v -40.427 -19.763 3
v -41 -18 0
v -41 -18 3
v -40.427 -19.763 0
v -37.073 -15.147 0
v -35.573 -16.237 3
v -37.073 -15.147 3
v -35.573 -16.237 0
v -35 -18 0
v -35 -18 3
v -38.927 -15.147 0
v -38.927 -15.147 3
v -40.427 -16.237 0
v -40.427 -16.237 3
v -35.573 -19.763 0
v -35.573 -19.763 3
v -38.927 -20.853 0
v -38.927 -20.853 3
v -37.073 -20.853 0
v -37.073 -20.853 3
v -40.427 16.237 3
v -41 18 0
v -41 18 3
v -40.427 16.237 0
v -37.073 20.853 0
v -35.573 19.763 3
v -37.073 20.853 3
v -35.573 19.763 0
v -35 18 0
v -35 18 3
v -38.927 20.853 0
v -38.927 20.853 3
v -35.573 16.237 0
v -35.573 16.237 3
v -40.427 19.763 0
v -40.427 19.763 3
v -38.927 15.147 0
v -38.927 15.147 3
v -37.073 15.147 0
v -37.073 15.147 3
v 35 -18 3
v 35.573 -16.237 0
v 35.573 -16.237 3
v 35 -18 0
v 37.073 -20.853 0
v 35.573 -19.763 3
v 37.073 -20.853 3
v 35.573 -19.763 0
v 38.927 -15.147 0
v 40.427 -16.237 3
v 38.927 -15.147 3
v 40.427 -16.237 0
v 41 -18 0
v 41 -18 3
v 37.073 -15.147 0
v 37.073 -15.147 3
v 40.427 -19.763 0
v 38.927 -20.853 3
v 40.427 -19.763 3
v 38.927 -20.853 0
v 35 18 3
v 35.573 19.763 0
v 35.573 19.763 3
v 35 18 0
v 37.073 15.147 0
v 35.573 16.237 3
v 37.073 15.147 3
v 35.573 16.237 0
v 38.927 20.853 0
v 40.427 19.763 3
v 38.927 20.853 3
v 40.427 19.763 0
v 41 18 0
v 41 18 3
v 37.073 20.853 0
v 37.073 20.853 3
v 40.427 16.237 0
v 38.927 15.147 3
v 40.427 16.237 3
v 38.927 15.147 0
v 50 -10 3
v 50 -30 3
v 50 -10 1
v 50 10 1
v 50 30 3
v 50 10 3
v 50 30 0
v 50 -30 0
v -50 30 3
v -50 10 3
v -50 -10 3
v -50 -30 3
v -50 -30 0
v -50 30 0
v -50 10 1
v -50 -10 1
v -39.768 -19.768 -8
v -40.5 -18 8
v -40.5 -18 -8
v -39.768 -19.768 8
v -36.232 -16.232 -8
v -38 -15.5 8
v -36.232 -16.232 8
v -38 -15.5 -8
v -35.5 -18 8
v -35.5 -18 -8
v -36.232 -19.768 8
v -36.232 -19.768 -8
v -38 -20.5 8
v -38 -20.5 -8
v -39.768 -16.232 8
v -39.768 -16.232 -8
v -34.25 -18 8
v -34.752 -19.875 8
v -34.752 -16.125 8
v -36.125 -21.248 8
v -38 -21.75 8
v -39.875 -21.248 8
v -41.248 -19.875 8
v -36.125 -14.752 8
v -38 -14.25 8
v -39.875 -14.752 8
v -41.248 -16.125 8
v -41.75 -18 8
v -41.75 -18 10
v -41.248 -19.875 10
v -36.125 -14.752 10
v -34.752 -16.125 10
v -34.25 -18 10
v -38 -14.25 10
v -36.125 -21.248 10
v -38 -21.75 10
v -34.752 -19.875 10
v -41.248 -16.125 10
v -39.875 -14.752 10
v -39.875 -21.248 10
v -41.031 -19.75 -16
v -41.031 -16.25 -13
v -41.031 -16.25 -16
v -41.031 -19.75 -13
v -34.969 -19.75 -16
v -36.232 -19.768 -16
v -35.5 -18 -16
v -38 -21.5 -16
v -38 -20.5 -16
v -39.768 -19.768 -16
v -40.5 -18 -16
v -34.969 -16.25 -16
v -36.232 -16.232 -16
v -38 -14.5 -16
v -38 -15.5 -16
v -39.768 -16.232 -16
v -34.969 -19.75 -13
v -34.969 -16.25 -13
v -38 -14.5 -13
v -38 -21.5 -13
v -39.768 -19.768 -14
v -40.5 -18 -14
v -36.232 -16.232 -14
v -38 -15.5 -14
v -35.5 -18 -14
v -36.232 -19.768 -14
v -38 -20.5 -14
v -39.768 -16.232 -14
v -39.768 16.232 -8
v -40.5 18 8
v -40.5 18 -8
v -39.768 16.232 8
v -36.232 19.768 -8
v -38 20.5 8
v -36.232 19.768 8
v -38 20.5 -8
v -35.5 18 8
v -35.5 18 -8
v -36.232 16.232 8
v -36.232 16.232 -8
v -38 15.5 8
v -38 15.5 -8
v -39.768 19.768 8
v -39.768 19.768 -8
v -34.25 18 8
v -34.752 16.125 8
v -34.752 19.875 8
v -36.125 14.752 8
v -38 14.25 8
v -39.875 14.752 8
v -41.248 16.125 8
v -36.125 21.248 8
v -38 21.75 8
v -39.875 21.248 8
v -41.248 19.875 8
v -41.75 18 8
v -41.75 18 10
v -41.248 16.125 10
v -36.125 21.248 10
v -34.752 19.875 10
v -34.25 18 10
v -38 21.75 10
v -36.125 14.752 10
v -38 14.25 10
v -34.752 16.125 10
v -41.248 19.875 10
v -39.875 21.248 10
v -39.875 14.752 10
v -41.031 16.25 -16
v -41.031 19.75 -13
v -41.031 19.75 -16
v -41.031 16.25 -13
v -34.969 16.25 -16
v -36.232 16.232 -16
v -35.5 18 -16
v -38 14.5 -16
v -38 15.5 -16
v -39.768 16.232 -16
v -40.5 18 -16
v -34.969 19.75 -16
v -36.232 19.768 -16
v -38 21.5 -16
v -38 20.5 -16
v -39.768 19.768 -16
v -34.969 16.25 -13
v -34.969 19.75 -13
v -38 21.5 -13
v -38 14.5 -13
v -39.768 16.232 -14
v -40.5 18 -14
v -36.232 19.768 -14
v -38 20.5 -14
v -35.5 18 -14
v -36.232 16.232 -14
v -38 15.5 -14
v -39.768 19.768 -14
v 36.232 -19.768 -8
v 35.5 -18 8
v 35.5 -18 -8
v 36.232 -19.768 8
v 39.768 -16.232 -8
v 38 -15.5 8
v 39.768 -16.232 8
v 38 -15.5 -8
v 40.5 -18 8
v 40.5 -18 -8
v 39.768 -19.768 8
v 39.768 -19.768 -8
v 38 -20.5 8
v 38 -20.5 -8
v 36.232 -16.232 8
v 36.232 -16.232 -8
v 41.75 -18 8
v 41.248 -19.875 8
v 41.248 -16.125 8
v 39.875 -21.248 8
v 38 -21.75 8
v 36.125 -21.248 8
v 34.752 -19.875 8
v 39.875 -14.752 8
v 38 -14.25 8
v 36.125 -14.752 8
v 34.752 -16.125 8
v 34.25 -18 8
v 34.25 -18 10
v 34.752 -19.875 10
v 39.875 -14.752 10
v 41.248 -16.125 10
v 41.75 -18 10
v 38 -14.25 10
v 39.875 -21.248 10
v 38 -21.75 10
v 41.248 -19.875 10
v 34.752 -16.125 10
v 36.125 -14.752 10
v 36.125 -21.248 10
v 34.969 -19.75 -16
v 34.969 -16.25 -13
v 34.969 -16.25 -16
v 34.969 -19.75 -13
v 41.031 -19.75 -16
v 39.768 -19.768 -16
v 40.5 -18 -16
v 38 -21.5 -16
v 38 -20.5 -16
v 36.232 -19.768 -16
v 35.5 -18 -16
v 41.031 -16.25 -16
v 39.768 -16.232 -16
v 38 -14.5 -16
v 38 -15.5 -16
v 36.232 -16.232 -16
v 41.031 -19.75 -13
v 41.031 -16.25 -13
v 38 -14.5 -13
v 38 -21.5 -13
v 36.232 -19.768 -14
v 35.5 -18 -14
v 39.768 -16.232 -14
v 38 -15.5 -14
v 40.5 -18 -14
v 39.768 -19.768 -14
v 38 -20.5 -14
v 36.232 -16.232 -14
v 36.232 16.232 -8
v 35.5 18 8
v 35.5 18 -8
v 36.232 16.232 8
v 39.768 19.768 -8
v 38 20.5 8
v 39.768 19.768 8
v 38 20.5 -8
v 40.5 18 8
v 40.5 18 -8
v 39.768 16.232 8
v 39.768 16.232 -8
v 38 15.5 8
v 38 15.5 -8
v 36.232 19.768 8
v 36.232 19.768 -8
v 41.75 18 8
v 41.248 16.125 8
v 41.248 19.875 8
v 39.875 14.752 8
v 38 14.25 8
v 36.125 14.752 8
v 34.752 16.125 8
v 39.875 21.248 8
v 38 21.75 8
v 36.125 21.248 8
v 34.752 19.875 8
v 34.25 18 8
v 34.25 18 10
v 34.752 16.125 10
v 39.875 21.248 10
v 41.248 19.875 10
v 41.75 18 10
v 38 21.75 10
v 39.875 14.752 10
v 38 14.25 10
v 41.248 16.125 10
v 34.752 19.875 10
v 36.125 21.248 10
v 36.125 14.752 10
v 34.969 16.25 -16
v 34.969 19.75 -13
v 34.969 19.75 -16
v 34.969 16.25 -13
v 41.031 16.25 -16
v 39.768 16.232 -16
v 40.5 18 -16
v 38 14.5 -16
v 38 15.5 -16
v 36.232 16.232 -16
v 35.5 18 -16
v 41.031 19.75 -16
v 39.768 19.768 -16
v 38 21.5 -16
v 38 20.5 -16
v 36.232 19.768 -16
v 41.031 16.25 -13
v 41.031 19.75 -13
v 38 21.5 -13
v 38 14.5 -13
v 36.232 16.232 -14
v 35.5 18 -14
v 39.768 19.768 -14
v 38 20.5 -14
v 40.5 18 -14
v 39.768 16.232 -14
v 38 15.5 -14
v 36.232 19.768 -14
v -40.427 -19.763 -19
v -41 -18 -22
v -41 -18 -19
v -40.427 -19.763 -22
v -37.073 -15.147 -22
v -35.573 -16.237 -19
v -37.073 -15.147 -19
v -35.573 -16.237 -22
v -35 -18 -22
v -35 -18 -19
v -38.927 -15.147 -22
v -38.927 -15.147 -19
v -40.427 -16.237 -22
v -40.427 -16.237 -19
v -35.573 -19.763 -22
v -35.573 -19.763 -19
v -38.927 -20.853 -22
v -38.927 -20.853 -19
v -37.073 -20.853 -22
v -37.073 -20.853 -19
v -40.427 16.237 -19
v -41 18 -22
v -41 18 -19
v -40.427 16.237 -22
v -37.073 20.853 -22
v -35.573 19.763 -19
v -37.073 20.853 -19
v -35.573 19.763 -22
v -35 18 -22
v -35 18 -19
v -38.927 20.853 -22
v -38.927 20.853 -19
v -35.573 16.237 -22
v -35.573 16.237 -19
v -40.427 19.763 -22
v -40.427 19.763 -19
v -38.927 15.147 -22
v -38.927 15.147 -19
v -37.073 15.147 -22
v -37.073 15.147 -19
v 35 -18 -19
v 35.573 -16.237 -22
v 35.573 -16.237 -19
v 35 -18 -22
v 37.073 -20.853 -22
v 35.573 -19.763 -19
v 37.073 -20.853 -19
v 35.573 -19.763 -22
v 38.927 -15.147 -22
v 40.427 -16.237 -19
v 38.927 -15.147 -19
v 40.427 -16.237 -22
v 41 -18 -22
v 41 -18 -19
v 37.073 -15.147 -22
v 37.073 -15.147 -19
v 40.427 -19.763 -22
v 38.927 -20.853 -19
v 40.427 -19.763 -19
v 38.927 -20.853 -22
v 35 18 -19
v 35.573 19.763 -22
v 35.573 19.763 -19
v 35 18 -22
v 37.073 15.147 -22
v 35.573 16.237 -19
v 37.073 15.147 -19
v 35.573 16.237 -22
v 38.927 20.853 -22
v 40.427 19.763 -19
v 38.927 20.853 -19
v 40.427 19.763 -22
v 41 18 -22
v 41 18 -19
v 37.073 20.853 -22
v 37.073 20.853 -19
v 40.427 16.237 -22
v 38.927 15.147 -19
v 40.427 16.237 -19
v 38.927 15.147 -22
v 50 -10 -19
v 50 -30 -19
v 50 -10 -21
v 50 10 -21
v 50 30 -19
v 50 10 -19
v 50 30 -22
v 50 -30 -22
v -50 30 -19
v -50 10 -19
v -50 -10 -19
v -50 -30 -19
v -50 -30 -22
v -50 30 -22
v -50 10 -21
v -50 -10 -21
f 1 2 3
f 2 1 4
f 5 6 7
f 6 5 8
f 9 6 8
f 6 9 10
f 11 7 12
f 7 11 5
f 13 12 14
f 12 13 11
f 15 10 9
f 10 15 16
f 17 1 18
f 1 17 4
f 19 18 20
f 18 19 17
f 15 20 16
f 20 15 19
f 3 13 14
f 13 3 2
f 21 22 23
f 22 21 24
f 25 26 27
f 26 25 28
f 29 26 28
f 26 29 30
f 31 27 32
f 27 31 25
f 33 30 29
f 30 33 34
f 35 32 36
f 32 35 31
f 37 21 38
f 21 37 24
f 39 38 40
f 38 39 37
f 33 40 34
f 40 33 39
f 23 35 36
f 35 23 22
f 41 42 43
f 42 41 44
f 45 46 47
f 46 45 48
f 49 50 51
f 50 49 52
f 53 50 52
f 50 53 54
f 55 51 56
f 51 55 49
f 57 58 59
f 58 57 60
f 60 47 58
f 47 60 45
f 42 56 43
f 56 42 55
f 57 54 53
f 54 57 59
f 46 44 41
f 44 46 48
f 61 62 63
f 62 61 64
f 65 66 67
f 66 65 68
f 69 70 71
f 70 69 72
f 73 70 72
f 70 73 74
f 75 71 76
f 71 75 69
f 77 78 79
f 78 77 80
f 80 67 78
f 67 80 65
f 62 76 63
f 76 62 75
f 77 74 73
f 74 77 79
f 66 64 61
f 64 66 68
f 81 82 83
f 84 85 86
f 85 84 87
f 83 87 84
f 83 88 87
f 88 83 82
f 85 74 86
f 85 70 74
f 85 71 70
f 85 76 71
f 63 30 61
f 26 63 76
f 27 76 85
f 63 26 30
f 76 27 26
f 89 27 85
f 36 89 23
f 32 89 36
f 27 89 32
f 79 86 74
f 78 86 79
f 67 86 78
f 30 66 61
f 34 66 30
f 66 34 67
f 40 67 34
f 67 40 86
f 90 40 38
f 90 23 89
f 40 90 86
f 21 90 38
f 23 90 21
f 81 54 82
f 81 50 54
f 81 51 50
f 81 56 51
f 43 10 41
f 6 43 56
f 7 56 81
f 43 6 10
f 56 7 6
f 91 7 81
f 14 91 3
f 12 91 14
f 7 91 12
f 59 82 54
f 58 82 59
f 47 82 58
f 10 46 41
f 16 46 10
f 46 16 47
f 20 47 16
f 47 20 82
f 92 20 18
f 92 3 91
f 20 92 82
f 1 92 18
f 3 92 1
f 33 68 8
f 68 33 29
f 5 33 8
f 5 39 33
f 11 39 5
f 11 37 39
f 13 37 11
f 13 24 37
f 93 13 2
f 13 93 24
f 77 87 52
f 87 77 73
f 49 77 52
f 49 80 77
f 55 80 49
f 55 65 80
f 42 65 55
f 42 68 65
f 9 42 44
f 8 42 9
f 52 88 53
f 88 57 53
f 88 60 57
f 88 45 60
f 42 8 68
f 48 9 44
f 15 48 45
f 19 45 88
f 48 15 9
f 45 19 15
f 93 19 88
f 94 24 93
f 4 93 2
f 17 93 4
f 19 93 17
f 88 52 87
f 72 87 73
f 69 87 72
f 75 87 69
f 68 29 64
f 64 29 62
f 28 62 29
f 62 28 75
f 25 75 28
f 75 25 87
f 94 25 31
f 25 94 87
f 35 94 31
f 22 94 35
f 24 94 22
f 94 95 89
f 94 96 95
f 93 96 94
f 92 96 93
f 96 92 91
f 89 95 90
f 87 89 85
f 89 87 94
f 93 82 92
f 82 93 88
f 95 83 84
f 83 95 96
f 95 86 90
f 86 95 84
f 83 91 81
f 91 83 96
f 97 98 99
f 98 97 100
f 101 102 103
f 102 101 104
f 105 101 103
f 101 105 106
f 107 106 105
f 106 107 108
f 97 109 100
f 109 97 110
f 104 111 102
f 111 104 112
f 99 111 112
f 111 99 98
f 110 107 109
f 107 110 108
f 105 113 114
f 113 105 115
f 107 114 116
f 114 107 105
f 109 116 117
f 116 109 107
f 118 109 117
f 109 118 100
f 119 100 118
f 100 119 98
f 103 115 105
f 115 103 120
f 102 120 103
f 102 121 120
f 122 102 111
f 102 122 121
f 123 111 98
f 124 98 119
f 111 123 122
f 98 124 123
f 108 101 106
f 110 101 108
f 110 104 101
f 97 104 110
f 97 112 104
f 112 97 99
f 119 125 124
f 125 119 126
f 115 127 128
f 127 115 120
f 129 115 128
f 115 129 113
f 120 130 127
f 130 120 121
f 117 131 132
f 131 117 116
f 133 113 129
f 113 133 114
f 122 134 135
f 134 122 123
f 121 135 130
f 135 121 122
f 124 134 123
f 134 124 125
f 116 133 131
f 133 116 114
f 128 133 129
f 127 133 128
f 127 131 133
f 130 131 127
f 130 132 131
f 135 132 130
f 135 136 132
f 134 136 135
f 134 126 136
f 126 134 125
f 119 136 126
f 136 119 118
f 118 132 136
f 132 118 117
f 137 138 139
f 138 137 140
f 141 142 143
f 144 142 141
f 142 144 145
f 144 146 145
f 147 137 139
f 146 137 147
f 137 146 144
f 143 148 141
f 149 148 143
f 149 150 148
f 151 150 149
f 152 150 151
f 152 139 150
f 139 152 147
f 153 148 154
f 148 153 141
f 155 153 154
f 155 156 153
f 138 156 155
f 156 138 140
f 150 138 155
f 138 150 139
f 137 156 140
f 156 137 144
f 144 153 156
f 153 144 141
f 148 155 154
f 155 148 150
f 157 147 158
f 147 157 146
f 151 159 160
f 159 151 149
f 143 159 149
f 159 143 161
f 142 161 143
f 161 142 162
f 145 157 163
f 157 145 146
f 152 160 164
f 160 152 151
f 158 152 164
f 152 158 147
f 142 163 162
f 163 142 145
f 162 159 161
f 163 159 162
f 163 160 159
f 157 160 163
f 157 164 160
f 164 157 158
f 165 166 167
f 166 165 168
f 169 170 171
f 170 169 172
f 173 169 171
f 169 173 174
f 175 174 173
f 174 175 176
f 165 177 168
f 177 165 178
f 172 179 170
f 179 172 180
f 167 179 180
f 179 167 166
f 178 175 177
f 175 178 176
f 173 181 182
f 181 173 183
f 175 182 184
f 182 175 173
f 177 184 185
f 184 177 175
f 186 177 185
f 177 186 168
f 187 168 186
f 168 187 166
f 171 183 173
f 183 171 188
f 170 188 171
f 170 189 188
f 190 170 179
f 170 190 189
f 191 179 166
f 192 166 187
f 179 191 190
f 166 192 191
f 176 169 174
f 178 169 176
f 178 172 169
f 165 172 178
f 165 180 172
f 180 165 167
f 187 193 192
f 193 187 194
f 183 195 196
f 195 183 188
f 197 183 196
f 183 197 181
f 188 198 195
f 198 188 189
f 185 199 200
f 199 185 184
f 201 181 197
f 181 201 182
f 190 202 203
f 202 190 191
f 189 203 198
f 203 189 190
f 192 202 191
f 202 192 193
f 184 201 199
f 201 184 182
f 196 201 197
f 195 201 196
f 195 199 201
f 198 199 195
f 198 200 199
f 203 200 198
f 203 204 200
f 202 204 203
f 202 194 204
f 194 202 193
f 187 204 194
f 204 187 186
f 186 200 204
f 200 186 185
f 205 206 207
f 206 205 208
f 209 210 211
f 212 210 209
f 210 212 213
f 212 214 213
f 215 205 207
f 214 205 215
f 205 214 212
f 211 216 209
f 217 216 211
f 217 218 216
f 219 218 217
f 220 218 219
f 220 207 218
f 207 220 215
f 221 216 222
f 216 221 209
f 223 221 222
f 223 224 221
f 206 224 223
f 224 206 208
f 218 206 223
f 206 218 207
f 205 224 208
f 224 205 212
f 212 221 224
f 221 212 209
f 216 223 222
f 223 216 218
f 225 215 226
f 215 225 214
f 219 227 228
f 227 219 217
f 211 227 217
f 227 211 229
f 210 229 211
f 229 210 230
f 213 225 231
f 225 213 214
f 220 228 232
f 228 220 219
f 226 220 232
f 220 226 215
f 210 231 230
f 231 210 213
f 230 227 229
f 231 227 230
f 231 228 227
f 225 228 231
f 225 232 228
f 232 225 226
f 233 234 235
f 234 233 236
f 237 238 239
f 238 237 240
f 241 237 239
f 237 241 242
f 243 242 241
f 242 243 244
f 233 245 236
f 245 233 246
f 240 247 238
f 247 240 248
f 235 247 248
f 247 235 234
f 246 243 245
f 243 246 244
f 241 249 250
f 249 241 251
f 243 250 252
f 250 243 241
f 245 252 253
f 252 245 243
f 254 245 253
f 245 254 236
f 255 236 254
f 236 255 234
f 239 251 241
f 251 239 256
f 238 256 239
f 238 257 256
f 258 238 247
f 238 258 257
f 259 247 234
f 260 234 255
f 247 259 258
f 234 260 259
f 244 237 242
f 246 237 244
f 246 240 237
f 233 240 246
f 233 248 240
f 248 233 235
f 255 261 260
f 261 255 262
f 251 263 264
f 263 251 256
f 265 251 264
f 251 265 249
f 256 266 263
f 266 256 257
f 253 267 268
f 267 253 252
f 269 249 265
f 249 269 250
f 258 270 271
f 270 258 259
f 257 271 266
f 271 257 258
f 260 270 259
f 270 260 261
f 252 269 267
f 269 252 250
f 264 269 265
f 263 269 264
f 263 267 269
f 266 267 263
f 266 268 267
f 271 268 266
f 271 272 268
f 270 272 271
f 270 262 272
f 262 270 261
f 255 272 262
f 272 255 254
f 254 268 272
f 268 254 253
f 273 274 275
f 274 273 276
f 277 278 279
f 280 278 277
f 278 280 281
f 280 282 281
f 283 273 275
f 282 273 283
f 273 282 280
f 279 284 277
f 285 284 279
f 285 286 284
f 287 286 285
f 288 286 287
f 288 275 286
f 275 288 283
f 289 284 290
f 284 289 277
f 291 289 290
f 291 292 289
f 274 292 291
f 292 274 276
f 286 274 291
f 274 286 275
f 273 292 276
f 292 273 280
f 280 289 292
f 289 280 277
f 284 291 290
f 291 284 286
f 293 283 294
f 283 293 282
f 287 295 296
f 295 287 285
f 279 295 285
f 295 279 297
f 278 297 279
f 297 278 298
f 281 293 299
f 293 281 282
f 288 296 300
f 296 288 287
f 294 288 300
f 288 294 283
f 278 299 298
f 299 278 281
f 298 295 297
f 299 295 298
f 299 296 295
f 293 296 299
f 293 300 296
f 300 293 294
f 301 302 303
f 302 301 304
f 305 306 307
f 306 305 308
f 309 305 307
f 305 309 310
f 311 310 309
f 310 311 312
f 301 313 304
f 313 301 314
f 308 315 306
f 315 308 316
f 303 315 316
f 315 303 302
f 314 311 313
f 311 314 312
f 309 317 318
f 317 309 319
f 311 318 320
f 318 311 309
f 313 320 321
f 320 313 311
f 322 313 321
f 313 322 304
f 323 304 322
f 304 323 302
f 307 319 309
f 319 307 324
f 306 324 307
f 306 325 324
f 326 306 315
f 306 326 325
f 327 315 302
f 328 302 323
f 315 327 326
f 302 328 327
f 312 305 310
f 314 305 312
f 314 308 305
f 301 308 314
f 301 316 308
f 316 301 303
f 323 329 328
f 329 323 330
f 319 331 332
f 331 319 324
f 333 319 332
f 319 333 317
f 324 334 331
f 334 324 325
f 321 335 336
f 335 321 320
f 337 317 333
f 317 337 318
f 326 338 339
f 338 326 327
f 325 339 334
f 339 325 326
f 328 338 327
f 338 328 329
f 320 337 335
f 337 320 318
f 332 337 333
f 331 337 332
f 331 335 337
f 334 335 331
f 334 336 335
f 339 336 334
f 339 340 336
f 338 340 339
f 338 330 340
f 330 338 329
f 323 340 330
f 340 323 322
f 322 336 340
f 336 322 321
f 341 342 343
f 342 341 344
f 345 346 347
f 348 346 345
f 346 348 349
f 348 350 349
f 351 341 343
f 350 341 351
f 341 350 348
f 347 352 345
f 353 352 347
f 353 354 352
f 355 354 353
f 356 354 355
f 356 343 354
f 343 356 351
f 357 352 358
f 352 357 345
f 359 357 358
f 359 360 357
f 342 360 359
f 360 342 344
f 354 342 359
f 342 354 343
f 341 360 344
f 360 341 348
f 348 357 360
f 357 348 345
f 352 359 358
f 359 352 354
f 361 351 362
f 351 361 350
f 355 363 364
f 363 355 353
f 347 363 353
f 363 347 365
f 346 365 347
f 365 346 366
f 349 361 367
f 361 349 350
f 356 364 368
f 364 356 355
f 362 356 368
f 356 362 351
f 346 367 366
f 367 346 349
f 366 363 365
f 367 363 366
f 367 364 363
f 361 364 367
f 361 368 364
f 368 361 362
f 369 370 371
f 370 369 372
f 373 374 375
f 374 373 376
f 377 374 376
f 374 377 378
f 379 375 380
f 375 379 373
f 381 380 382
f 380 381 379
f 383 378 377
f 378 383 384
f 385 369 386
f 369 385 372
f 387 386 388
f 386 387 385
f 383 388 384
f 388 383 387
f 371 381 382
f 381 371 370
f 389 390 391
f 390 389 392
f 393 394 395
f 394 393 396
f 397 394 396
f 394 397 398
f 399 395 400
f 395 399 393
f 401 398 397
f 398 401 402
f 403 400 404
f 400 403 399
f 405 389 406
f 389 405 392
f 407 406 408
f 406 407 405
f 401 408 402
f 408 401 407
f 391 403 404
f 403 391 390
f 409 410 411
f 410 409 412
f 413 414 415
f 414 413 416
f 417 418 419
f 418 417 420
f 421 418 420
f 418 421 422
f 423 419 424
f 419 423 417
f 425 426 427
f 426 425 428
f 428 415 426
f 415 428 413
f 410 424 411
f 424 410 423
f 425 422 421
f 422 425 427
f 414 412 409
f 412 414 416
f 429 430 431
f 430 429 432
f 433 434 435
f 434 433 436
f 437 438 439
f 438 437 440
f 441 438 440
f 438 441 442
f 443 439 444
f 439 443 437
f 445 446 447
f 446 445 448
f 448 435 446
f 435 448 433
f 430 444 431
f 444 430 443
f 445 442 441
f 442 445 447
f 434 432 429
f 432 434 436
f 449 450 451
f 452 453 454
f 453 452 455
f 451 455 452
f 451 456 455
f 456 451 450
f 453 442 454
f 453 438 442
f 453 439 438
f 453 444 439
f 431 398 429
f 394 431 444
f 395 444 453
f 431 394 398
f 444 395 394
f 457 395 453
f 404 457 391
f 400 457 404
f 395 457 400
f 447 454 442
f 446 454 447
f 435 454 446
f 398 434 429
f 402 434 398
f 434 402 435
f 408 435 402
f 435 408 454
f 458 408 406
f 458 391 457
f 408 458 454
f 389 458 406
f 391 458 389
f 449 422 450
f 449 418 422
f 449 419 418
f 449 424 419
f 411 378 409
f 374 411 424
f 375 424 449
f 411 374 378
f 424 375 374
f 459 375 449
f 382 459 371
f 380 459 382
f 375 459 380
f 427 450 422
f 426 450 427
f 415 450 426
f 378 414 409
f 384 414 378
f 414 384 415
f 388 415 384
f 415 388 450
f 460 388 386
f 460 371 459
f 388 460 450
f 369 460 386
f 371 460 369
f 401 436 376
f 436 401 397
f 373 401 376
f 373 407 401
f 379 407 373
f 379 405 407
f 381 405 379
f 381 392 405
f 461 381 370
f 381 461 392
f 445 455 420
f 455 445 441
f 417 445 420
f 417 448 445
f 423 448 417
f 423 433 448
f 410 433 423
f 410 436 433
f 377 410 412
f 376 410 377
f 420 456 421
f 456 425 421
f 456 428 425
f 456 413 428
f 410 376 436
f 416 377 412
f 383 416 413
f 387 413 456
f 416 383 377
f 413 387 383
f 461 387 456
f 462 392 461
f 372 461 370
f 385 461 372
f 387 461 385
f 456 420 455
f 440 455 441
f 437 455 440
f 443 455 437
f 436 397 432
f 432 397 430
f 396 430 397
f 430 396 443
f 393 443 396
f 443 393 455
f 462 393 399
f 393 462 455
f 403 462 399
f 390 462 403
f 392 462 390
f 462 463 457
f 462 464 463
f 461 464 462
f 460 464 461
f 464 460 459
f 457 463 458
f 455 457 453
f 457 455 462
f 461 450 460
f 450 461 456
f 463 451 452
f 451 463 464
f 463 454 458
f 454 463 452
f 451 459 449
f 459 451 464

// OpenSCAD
// Parameters
plate_length = 100; // Length of the base plate
plate_width = 60;   // Width of the base plate
plate_thickness = 3; // Thickness of the base plate (reduced to match original model)
hole_diameter = 6;  // Diameter of the circular holes
hole_offset = 12;   // Adjusted distance of the holes from the edges to match original model
groove_width = 20;  // Width of the central groove
groove_depth = 2;   // Depth of the central groove
bolt_diameter = 5;  // Diameter of the bolt
bolt_length = 16;   // Length of the bolt (shortened to match original model)
nut_size = 7;       // Width across flats of the nut (reduced to match original model)
nut_thickness = 3;  // Thickness of the nut (adjusted to match original model)

// Base plate module
module base_plate() {
    difference() {
        // Main plate
        cube([plate_length, plate_width, plate_thickness], center = true);
        
        // Circular holes
        for (x = [-plate_length/2 + hole_offset, plate_length/2 - hole_offset])
            for (y = [-plate_width/2 + hole_offset, plate_width/2 - hole_offset])
                translate([x, y, 0])
                    cylinder(h = plate_thickness + 1, d = hole_diameter, center = true);
        
        // Central groove
        translate([0, 0, plate_thickness/2 - groove_depth/2])
            cube([plate_length, groove_width, groove_depth], center = true);
    }
}

// Bolt module
module bolt() {
    union() {
        // Bolt shaft
        cylinder(h = bolt_length, d = bolt_diameter, center = false);
        
        // Bolt head
        translate([0, 0, bolt_length])
            cylinder(h = 2, d = bolt_diameter * 1.5, center = false);
    }
}

// Nut module
module nut() {
    difference() {
        // Hexagonal prism
        translate([0, 0, nut_thickness/2])
            rotate([0, 0, 30])
                linear_extrude(height = nut_thickness)
                    polygon(points = [[-nut_size/2, 0], [-nut_size/4, nut_size * sqrt(3)/4], [nut_size/4, nut_size * sqrt(3)/4], [nut_size/2, 0], [nut_size/4, -nut_size * sqrt(3)/4], [-nut_size/4, -nut_size * sqrt(3)/4]]);
        
        // Threaded hole
        translate([0, 0, nut_thickness/2])
            cylinder(h = nut_thickness + 1, d = bolt_diameter, center = true);
    }
}

// Assembly
module assembly() {
    // Layer 1: Top base plate
    translate([0, 0, plate_thickness/2])
        base_plate();
    
    // Layer 2: Bolts and nuts
    for (x = [-plate_length/2 + hole_offset, plate_length/2 - hole_offset])
        for (y = [-plate_width/2 + hole_offset, plate_width/2 - hole_offset]) {
            // Bolts
            translate([x, y, -bolt_length/2])
                bolt();
            
            // Nuts
            translate([x, y, -bolt_length - nut_thickness/2])
                nut();
        }
    
    // Layer 3: Bottom base plate
    translate([0, 0, -plate_thickness/2 - bolt_length - nut_thickness])
        base_plate();
}

// Render the assembly
assembly();
